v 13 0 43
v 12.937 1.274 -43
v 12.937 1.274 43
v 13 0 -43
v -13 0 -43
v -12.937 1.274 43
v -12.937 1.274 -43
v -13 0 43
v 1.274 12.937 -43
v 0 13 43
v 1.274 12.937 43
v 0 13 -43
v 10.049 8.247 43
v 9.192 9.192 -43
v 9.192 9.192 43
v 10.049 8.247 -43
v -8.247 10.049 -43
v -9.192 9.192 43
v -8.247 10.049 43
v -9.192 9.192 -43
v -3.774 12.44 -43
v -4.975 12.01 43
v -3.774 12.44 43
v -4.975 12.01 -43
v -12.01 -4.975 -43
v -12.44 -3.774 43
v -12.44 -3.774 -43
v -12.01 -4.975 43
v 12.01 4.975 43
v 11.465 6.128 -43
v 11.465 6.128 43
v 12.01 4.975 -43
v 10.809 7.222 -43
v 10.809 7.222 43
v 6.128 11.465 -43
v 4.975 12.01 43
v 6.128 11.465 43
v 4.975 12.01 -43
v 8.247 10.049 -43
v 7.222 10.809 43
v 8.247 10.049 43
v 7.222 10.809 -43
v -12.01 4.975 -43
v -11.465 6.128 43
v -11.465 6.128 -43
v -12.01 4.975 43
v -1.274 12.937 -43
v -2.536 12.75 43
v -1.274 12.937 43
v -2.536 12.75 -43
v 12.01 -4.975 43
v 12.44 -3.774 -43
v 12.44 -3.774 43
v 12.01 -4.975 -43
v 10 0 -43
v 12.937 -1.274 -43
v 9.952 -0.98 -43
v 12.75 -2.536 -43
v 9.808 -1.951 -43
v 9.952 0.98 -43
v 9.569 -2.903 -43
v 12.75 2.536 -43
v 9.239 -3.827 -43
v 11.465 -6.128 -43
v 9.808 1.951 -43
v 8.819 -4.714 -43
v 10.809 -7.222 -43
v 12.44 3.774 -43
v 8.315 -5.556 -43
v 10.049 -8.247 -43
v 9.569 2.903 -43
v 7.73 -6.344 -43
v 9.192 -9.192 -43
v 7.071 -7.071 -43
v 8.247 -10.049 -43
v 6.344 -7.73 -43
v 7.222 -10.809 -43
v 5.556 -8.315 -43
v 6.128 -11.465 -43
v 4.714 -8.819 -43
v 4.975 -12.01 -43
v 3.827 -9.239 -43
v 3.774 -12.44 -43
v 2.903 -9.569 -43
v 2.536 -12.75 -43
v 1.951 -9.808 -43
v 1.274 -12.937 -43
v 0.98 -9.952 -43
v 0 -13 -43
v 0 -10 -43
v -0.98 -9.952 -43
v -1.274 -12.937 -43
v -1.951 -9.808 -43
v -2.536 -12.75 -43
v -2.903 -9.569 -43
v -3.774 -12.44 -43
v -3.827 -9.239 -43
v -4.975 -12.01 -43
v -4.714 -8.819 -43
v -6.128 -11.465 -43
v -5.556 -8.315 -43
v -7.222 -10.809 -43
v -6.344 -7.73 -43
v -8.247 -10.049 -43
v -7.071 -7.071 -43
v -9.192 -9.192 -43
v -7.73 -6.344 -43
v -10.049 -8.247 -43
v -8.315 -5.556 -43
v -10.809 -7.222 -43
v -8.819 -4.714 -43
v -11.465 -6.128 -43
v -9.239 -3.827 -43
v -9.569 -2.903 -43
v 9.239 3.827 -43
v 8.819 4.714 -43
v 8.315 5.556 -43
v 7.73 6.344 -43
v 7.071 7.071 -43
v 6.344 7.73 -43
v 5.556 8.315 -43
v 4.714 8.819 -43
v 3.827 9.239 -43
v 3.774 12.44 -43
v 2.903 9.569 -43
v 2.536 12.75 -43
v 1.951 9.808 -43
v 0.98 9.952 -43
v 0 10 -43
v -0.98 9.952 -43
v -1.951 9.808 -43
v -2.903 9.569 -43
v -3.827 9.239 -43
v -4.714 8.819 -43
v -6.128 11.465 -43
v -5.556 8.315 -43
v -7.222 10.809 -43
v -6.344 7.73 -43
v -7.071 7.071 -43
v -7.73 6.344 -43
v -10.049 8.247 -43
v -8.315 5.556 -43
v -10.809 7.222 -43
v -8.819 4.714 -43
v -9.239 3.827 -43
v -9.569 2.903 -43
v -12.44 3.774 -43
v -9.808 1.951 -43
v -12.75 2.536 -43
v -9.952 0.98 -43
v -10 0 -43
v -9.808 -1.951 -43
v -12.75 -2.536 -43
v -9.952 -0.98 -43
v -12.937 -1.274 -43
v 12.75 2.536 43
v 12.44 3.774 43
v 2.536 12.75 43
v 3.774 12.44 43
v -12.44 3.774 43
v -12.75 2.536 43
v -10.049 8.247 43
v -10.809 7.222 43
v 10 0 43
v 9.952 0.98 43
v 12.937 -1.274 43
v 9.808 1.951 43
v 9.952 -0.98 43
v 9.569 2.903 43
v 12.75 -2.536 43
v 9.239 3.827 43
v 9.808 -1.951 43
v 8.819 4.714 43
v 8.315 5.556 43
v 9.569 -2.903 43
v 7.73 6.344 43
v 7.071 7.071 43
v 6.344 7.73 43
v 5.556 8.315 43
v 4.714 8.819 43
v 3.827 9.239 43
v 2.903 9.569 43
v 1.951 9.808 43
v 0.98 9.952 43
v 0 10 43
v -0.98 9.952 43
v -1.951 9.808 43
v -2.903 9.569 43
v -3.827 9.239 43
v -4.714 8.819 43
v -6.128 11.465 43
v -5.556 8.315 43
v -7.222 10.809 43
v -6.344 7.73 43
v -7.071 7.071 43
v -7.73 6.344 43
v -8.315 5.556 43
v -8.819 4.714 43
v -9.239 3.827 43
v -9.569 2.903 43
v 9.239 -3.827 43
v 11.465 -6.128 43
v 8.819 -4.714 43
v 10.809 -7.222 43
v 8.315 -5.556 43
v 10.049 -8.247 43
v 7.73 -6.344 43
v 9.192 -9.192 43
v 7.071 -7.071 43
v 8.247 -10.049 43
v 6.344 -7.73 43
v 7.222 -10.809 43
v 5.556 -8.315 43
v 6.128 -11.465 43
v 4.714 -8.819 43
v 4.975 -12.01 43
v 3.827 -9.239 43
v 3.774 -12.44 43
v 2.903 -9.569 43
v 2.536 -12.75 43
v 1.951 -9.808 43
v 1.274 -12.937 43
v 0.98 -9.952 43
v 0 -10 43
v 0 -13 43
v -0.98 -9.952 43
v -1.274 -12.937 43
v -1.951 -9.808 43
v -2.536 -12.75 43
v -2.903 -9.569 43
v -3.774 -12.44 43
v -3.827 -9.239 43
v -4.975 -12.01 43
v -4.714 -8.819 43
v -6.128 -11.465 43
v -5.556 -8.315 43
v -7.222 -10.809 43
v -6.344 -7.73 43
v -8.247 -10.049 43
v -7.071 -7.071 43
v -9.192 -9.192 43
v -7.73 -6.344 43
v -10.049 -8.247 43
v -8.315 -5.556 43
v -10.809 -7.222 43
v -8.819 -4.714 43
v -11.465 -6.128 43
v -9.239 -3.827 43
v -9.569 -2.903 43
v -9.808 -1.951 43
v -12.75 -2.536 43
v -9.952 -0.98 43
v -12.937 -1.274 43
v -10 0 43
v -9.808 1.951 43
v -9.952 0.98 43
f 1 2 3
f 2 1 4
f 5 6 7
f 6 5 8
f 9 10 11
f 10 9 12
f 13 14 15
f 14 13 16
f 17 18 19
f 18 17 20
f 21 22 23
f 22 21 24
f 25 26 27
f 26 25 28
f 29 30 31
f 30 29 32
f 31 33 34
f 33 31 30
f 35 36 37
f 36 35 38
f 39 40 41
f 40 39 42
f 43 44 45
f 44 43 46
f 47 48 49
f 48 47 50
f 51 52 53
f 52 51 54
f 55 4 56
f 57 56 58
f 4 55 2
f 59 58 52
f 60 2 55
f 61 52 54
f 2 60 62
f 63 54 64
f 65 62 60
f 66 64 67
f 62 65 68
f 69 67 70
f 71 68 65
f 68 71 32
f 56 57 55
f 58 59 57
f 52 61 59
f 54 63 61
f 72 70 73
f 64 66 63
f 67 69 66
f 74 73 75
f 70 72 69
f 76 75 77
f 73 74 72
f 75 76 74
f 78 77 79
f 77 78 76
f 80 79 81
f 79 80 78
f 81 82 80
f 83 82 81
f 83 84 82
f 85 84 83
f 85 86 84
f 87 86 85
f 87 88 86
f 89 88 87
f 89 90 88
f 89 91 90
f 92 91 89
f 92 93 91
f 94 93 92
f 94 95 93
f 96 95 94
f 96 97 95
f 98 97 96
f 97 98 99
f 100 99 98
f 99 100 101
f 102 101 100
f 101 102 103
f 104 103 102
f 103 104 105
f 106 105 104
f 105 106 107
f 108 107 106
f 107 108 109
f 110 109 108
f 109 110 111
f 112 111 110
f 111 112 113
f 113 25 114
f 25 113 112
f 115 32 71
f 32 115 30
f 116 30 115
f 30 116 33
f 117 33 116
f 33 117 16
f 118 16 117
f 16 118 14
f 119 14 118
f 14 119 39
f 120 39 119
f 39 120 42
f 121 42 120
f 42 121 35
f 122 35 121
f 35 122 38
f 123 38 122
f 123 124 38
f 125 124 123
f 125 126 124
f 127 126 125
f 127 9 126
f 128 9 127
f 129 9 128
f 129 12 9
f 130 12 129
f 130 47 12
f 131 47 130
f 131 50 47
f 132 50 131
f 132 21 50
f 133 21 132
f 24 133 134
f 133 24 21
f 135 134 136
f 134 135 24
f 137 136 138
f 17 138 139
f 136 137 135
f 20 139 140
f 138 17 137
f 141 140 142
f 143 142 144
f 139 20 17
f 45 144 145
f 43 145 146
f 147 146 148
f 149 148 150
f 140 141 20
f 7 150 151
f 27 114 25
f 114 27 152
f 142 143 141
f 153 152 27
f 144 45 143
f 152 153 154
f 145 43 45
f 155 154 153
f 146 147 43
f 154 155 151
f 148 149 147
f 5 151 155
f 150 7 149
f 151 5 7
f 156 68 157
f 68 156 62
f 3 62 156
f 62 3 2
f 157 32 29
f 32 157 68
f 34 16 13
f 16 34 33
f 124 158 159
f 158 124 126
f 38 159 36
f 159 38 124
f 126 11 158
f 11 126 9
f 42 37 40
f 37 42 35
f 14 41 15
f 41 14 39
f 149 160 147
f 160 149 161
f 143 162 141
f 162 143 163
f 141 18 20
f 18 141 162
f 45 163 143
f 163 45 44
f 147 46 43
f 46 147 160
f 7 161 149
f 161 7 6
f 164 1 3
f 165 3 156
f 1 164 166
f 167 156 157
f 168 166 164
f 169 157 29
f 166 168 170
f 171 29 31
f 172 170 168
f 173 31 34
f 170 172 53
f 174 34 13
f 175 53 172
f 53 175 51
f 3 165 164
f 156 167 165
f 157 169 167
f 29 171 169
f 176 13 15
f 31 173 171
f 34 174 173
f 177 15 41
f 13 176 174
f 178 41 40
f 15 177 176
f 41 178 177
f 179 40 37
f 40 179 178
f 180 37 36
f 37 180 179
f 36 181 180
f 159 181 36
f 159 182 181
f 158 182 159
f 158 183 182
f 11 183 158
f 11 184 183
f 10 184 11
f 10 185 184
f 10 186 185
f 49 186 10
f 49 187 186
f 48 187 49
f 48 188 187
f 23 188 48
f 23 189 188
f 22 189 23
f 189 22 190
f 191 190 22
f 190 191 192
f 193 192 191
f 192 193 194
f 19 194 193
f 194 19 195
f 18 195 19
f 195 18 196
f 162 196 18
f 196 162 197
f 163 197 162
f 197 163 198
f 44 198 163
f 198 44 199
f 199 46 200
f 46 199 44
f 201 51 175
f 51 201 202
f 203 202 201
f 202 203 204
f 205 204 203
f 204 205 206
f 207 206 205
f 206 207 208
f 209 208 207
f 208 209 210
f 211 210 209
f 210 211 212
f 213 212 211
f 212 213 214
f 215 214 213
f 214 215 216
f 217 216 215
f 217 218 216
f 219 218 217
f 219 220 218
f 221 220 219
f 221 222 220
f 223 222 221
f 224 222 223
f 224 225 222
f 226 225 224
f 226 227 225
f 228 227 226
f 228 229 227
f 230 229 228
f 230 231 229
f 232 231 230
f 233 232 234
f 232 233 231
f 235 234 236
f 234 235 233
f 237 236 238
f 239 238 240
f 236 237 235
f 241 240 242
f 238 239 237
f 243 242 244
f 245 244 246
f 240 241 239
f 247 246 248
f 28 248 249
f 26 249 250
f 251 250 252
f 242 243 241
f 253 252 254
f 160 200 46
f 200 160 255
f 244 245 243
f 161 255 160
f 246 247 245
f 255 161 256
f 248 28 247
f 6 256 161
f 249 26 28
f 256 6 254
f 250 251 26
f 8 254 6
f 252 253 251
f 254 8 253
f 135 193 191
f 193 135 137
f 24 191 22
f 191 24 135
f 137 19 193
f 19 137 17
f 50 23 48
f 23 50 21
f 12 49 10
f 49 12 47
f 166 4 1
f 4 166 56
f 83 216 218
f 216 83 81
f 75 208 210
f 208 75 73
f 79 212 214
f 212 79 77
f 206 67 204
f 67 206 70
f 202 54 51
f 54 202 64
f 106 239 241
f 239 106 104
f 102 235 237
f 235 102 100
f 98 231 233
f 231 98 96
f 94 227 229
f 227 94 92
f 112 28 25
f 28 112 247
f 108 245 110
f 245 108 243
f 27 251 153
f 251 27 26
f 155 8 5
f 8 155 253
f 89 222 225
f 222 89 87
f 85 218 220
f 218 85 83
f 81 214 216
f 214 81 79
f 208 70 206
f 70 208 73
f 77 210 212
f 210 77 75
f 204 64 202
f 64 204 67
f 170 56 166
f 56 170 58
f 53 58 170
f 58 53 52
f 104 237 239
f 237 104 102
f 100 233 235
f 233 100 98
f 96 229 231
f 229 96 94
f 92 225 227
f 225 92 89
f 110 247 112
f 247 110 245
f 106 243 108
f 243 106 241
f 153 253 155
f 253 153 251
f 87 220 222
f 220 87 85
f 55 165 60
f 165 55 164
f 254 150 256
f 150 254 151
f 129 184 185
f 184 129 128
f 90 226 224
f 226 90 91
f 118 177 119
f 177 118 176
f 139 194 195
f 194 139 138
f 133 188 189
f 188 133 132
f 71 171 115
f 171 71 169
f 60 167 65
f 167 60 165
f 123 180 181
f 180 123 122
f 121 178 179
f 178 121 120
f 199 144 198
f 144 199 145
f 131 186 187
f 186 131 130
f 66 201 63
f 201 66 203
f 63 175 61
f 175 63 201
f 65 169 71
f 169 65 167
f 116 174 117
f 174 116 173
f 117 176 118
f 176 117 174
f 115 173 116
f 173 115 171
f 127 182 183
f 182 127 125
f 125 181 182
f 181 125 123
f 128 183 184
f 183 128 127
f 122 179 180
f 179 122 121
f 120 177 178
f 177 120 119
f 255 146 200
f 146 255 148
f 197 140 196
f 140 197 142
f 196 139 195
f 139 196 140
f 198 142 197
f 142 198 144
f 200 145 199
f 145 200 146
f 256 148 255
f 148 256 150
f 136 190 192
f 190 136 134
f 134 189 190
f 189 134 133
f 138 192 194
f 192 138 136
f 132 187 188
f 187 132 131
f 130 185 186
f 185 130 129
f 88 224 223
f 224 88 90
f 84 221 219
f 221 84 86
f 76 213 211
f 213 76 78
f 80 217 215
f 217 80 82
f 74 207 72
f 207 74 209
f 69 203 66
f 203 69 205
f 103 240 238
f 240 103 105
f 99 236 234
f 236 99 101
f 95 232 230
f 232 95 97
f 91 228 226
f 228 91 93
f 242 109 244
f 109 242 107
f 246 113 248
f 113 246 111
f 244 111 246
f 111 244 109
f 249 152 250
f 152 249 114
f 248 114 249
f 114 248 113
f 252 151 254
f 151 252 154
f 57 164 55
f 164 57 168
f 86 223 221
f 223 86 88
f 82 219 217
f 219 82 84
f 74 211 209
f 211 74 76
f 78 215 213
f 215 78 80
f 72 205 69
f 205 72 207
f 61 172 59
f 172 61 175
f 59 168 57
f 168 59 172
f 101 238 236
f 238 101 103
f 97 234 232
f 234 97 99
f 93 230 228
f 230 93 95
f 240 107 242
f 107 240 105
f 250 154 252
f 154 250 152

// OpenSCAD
$fn = 64;

MOUNT_ID = 26;
POLE_DIAMETER = 20;
HEIGHT = 86;
CUTOUT = 5;

difference() {
    cylinder(d=MOUNT_ID, h=HEIGHT, center=true);
    cylinder(d=POLE_DIAMETER, h=HEIGHT+1, center=true);
    translate([CUTOUT*CUTOUT, 0, 0])
       cube([CUTOUT*4, CUTOUT, HEIGHT+1], center=true);
}

// flag pole
%cylinder(d=19.37, h=HEIGHT*3, center=true);
